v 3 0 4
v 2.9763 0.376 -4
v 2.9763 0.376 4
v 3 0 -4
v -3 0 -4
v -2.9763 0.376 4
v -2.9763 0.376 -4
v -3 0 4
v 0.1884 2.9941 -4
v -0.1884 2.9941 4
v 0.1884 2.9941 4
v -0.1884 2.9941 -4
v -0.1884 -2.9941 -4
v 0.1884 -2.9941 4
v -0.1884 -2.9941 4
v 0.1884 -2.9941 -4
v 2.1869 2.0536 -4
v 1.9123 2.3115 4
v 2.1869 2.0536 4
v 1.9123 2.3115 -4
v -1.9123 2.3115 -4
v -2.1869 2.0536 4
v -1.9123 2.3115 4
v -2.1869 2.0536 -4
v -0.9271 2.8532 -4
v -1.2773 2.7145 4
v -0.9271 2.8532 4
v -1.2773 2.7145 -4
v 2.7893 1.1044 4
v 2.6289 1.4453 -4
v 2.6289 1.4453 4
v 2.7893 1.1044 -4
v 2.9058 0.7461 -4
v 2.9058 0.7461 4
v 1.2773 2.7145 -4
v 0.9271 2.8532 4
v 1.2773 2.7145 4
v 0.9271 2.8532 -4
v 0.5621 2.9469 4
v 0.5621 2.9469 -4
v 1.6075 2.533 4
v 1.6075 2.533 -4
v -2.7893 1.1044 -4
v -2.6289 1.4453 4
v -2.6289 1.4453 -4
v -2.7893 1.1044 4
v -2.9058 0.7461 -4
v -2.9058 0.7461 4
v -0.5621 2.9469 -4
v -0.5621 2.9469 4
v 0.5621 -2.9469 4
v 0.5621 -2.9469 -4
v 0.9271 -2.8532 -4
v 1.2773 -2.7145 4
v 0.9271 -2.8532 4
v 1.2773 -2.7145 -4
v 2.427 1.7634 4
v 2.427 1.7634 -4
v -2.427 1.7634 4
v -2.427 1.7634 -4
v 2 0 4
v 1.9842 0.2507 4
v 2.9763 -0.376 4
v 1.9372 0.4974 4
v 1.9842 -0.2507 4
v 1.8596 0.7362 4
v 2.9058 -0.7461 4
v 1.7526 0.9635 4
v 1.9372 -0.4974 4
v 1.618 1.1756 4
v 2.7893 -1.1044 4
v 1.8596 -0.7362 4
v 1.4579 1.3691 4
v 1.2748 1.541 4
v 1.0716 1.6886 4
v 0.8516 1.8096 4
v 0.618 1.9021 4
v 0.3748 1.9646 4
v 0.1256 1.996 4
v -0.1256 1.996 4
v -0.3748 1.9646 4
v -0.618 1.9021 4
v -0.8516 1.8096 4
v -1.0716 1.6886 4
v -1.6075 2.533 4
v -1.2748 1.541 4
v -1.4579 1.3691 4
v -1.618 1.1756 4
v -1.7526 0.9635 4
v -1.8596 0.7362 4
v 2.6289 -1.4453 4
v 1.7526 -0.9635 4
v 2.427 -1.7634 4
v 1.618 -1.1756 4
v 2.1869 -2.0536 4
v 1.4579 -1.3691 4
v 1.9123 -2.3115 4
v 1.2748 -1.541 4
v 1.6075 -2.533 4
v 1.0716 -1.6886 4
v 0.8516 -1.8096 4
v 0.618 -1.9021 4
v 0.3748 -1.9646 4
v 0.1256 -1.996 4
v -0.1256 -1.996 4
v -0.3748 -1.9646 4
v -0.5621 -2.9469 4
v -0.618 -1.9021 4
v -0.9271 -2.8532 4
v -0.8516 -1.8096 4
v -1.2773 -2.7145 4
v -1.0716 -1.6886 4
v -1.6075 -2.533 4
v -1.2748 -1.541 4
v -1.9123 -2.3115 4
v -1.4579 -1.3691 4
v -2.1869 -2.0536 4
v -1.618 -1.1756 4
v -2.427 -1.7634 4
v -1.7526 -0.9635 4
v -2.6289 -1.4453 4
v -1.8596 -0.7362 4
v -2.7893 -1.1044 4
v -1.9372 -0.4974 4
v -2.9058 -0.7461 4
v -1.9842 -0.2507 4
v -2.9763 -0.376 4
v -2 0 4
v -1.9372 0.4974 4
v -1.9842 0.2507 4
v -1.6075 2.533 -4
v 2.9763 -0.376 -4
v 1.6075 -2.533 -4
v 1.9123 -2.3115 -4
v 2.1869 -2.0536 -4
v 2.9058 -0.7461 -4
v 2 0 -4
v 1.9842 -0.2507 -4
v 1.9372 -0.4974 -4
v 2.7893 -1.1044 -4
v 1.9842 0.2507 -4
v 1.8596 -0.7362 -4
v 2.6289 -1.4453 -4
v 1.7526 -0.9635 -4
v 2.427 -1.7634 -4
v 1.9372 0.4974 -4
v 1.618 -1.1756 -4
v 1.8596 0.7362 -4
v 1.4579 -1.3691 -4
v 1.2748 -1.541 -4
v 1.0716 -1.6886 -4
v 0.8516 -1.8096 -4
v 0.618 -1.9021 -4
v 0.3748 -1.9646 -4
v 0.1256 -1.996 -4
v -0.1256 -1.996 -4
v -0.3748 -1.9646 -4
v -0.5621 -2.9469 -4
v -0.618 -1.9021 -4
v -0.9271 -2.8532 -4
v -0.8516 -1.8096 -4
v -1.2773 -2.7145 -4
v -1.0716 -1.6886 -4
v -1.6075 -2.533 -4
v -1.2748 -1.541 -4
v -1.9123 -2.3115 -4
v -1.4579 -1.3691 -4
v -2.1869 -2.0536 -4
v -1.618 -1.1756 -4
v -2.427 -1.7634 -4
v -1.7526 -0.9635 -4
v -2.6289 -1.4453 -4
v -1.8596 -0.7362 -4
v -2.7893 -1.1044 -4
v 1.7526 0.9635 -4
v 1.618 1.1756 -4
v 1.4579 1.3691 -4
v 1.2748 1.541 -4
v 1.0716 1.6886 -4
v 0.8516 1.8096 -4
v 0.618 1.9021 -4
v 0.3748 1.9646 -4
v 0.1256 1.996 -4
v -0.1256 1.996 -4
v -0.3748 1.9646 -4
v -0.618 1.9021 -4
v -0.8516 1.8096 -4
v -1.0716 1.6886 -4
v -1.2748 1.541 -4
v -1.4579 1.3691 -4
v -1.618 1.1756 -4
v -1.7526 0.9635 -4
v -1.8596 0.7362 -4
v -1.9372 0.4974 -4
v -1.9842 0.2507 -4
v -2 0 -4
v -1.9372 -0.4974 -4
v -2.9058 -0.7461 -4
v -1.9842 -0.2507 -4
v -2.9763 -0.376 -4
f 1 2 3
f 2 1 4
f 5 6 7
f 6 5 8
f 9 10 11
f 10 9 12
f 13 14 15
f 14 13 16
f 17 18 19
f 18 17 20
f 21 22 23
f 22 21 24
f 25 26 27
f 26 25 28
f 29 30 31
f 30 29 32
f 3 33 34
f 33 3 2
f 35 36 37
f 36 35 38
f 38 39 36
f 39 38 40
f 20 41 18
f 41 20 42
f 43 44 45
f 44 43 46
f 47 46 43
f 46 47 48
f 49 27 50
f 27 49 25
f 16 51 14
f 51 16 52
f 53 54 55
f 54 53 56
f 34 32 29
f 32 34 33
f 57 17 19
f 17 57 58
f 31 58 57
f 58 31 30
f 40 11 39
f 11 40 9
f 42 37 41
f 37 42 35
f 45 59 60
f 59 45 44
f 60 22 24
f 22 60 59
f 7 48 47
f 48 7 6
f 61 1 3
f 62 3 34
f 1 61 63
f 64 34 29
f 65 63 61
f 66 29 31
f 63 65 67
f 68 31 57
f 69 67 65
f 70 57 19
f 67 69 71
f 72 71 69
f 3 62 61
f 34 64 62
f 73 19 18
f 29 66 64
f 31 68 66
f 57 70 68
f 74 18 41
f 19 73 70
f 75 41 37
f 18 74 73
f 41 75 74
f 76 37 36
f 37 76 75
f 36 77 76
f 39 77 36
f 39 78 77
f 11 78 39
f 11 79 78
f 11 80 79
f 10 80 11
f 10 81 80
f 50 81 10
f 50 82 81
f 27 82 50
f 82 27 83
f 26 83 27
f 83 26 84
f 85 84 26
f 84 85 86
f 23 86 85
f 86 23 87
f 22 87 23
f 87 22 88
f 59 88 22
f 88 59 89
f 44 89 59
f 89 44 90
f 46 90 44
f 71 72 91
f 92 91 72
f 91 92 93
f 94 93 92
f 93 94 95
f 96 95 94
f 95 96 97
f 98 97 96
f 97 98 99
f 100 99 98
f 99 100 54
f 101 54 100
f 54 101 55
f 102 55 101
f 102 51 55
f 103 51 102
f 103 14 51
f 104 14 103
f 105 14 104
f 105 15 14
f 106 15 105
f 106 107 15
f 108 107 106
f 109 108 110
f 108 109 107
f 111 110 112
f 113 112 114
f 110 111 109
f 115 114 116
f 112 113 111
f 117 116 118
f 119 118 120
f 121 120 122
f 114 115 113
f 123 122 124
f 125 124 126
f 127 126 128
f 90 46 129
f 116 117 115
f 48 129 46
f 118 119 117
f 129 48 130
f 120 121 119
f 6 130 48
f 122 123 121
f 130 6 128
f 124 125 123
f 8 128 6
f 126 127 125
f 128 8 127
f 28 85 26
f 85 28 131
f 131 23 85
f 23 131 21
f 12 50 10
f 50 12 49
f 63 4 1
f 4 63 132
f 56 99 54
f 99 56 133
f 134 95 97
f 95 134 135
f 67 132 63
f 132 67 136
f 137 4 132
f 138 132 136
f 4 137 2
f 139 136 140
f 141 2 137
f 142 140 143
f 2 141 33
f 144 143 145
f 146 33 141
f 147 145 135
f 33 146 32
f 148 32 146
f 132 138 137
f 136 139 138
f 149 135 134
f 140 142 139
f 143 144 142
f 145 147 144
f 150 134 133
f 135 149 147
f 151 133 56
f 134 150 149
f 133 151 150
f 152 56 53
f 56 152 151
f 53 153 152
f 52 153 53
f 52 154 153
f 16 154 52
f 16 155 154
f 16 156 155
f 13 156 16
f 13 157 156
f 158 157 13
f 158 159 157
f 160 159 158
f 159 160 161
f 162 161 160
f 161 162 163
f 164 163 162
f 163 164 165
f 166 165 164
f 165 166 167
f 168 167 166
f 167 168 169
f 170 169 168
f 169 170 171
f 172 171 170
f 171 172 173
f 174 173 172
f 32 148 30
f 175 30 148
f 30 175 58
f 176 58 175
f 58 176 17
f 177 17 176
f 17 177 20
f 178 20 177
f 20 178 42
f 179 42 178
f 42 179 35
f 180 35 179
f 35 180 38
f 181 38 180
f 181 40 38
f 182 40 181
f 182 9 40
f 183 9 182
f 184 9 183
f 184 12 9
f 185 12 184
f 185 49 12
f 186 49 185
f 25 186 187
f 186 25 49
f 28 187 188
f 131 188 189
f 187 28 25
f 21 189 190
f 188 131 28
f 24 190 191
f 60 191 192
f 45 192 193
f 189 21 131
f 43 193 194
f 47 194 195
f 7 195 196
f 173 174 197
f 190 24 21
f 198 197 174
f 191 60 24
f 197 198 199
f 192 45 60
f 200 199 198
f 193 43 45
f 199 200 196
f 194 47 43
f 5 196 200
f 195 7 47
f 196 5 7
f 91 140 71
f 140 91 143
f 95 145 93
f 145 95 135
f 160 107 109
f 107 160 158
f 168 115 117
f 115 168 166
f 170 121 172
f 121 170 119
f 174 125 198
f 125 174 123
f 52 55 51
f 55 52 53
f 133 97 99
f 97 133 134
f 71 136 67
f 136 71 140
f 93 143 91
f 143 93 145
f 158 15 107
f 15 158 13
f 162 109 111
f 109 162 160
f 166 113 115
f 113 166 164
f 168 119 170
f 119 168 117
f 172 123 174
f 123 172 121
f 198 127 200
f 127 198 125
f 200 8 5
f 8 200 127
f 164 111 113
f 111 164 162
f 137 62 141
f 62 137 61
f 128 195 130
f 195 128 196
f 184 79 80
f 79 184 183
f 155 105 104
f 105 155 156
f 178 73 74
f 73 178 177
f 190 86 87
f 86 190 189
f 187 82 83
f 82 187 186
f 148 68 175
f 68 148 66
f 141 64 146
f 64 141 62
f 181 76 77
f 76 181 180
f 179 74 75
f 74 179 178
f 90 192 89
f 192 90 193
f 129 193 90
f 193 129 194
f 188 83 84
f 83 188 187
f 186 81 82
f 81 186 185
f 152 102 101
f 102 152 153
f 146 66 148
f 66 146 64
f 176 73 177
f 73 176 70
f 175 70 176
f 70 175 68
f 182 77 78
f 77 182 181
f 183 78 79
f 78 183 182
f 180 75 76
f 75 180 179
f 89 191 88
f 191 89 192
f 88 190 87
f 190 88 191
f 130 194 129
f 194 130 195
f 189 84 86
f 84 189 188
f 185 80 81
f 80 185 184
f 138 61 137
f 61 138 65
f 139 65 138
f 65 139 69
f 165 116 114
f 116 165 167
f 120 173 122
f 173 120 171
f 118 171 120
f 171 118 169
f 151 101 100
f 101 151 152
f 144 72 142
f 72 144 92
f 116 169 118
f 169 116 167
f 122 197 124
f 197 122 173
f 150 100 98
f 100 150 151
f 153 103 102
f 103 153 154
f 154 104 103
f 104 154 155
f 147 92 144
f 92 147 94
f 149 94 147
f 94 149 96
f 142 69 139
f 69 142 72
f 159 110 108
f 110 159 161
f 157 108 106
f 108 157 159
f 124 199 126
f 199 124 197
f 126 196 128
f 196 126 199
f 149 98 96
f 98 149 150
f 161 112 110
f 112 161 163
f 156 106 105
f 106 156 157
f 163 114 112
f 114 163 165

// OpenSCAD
$fn = 50;


difference() {
	union() {
		translate(v = [0, 0, -4.0000000000]) {
			cylinder(h = 8, r = 3.0000000000);
		}
	}
	union() {
		translate(v = [0, 0, -100.0000000000]) {
			cylinder(h = 200, r = 2);
		}
	}
}
